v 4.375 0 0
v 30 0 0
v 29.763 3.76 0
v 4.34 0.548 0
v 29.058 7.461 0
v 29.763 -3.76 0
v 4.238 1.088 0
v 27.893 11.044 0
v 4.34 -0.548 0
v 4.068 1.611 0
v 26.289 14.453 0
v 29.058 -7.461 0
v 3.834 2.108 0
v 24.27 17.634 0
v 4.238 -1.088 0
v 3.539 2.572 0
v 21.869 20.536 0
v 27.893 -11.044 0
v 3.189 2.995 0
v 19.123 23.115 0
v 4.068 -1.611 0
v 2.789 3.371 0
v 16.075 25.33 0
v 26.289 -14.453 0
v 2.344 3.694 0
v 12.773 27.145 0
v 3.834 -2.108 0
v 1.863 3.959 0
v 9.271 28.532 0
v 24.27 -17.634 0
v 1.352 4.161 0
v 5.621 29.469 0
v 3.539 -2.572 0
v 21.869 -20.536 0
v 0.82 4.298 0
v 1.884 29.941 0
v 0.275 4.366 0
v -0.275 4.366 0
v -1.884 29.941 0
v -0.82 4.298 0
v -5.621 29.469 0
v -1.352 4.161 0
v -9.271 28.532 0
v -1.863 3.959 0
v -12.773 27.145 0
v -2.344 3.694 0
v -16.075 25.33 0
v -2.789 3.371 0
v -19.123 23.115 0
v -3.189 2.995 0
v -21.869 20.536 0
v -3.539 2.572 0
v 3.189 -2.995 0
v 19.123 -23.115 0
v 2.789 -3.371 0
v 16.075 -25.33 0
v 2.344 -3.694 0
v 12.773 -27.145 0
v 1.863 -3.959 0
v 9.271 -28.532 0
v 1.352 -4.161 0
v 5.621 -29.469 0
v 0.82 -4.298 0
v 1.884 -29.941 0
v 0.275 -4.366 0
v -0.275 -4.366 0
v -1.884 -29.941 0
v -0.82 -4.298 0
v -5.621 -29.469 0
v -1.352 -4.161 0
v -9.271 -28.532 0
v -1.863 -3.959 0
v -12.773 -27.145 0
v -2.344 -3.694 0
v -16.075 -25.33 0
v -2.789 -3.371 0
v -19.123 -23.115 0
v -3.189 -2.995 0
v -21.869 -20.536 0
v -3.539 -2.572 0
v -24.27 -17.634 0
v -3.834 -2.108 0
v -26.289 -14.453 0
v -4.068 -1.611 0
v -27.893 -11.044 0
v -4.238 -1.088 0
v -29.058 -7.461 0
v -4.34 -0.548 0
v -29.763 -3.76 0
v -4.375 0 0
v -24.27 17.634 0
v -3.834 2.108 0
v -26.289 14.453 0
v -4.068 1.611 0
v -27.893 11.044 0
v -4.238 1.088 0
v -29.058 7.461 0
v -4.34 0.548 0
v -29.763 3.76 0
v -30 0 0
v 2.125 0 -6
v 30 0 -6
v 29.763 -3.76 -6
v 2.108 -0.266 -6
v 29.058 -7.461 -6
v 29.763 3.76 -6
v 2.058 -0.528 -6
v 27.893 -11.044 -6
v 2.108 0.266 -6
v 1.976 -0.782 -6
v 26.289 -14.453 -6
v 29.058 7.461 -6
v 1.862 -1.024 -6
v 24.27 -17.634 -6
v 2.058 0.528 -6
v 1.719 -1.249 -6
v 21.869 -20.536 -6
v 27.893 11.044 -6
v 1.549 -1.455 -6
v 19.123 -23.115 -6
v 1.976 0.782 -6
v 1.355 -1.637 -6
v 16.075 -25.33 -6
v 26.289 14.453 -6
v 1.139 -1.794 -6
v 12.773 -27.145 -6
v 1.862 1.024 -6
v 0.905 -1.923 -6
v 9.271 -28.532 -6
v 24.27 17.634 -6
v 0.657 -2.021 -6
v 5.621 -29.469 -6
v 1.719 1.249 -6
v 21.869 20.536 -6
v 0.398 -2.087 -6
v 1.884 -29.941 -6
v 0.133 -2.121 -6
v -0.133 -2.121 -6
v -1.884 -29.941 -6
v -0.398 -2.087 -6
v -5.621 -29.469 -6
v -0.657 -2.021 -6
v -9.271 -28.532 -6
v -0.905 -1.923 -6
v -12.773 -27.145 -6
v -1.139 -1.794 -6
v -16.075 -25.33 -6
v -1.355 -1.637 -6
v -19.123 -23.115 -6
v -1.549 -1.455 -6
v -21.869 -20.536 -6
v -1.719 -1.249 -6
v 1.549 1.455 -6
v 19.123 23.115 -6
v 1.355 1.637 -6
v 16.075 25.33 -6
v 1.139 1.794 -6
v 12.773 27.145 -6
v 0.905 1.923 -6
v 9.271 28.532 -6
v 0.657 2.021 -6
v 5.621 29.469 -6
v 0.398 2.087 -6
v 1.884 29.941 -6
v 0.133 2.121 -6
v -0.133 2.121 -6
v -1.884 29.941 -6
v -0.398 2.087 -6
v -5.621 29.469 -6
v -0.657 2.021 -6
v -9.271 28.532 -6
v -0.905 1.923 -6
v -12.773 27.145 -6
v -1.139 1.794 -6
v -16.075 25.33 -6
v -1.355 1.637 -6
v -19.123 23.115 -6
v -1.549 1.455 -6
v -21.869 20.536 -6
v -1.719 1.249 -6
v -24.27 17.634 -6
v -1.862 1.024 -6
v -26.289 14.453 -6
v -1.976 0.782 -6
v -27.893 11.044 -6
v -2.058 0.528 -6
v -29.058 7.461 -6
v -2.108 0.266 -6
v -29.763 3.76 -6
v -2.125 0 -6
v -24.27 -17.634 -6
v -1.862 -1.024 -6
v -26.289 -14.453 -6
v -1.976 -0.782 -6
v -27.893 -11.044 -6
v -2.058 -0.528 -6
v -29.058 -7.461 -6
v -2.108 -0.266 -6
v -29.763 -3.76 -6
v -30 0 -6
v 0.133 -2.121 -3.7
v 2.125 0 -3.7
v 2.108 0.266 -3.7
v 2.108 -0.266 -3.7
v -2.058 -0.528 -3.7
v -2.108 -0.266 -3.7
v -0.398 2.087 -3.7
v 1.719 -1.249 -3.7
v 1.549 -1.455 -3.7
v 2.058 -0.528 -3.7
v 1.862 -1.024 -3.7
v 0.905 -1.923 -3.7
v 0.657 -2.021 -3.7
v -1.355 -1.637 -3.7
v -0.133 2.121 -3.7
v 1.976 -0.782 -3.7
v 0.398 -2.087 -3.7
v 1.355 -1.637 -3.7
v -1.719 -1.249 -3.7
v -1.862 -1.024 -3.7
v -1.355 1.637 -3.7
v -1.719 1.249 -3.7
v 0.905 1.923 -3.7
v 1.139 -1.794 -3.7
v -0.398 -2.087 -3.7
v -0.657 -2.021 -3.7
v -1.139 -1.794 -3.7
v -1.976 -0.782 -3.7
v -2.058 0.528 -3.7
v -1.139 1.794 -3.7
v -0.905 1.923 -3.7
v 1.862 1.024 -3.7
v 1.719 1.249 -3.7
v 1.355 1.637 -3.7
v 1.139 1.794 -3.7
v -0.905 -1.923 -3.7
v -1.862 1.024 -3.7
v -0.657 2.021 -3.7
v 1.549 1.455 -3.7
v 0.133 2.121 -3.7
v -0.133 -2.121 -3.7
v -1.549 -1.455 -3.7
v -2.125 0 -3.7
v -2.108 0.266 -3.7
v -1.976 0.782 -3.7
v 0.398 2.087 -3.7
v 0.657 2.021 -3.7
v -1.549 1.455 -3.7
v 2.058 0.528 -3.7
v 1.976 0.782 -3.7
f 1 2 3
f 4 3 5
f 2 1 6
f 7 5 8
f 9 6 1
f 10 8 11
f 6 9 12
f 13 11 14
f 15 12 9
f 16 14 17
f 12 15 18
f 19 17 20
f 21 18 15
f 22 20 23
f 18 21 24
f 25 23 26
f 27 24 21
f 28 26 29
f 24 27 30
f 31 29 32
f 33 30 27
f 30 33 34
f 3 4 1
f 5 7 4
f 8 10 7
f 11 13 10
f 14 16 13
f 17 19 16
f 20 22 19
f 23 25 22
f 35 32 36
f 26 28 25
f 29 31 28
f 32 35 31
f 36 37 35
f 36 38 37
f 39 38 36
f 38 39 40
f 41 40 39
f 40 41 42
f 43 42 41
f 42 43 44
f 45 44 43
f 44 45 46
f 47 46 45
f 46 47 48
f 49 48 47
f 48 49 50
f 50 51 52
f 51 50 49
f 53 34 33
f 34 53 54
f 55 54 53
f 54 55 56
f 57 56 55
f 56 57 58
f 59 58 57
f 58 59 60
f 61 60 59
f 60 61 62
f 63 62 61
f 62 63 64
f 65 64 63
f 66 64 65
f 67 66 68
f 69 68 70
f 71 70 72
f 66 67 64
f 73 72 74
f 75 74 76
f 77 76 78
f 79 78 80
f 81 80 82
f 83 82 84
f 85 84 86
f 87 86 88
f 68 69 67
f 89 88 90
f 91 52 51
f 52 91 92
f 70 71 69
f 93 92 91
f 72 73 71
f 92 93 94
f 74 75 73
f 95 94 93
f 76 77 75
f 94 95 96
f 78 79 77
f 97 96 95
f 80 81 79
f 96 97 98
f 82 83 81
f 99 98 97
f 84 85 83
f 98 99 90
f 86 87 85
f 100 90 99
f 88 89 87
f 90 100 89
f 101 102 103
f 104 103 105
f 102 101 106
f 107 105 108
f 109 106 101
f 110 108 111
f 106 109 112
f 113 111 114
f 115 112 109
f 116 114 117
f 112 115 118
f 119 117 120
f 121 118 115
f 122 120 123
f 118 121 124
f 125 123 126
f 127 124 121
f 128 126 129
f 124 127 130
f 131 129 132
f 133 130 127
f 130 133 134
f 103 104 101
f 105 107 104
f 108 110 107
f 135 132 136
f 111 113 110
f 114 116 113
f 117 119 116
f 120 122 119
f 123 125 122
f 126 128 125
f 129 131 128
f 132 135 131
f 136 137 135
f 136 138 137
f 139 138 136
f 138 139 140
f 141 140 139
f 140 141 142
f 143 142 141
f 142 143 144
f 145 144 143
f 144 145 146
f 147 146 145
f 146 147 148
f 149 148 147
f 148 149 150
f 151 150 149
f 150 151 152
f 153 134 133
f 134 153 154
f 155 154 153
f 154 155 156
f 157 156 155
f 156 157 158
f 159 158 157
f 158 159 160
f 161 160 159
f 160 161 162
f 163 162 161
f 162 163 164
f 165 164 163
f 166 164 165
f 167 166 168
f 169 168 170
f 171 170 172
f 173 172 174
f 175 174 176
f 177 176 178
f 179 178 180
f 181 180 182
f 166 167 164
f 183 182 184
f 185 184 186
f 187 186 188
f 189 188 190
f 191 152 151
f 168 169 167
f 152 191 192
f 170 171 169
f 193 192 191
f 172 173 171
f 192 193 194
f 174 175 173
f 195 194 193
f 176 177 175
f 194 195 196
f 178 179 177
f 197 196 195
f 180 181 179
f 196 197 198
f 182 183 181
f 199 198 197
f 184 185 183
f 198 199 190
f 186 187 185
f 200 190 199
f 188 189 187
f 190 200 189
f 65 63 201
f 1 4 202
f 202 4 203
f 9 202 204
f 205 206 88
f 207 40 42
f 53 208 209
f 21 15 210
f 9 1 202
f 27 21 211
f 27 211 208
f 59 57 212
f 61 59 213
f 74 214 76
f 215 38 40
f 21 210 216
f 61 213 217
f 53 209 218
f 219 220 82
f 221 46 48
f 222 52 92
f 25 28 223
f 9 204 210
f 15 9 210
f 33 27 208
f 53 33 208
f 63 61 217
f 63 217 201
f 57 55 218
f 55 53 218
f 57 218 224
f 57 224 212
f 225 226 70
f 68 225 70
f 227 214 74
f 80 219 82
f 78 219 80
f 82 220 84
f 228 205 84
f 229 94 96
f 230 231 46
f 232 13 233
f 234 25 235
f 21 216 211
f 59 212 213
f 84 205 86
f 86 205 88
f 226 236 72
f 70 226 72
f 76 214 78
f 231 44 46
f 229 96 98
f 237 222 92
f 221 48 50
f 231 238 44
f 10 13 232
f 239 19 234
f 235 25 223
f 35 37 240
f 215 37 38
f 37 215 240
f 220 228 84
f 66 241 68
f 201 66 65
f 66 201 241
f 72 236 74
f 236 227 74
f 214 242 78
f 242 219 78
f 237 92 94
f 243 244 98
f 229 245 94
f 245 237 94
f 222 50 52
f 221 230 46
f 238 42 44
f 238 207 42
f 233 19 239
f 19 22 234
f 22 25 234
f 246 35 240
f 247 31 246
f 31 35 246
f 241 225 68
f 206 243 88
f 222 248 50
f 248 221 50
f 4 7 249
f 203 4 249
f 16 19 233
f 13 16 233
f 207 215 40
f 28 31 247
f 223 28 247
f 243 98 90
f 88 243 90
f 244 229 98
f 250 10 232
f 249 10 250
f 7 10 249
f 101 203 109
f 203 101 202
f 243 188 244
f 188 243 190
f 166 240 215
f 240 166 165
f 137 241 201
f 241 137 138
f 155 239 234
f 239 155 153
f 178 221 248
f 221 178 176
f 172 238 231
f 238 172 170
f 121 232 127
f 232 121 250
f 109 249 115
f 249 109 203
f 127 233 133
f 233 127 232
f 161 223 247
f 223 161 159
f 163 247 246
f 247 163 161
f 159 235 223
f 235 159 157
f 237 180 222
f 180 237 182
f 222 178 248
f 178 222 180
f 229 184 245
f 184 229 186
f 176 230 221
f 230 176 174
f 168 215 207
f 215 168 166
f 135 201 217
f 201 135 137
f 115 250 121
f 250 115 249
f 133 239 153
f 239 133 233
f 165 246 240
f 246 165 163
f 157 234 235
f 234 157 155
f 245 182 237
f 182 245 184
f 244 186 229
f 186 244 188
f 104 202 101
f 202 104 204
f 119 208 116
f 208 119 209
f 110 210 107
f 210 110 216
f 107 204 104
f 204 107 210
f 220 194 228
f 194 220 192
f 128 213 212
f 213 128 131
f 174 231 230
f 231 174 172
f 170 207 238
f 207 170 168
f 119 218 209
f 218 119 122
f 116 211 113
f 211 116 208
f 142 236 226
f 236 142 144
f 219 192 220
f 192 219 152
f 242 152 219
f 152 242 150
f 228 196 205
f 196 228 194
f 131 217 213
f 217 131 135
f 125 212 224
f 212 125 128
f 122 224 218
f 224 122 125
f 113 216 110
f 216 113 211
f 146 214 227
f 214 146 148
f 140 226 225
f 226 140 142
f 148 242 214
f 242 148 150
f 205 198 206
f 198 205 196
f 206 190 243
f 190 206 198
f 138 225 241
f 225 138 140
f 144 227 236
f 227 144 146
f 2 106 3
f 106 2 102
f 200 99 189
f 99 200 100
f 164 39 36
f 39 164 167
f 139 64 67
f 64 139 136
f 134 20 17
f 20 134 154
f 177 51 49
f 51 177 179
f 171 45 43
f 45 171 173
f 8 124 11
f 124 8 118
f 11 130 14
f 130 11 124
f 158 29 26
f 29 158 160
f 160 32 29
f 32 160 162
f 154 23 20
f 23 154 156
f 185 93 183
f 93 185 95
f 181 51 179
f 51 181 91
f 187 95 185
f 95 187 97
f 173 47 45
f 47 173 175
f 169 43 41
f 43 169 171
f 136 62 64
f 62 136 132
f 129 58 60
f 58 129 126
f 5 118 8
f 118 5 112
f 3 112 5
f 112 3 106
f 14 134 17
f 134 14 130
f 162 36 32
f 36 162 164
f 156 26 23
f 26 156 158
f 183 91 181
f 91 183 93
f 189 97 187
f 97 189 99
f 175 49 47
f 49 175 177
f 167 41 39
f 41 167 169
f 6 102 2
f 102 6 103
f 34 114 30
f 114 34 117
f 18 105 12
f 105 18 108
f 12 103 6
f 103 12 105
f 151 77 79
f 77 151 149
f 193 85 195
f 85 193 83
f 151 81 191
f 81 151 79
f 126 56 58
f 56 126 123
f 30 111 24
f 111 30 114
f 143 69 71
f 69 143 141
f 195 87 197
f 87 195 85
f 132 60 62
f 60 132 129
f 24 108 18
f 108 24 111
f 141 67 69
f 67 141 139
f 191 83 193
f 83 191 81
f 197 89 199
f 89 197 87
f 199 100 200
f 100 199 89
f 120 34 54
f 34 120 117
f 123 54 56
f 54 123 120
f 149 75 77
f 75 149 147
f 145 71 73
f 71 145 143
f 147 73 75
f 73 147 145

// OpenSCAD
$fn = 50;


difference() {
	union() {
		translate(v = [0, 0, -6.0000000000]) {
			cylinder(h = 6, r = 30.0000000000);
		}
	}
	union() {
		translate(v = [0, 0, 0]) {
			rotate(a = [0, 0, 0]) {
				difference() {
					union() {
						translate(v = [0, 0, -6.0000000000]) {
							cylinder(h = 6, r = 2.0000000000);
						}
						translate(v = [0, 0, -3.7000000000]) {
							cylinder(h = 3.7000000000, r1 = 2.1250000000, r2 = 4.3750000000);
						}
						translate(v = [0, 0, -6.0000000000]) {
							cylinder(h = 6, r = 2.1250000000);
						}
						translate(v = [0, 0, -6.0000000000]) {
							cylinder(h = 6, r = 2.0000000000);
						}
					}
					union();
				}
			}
		}
	}
}
